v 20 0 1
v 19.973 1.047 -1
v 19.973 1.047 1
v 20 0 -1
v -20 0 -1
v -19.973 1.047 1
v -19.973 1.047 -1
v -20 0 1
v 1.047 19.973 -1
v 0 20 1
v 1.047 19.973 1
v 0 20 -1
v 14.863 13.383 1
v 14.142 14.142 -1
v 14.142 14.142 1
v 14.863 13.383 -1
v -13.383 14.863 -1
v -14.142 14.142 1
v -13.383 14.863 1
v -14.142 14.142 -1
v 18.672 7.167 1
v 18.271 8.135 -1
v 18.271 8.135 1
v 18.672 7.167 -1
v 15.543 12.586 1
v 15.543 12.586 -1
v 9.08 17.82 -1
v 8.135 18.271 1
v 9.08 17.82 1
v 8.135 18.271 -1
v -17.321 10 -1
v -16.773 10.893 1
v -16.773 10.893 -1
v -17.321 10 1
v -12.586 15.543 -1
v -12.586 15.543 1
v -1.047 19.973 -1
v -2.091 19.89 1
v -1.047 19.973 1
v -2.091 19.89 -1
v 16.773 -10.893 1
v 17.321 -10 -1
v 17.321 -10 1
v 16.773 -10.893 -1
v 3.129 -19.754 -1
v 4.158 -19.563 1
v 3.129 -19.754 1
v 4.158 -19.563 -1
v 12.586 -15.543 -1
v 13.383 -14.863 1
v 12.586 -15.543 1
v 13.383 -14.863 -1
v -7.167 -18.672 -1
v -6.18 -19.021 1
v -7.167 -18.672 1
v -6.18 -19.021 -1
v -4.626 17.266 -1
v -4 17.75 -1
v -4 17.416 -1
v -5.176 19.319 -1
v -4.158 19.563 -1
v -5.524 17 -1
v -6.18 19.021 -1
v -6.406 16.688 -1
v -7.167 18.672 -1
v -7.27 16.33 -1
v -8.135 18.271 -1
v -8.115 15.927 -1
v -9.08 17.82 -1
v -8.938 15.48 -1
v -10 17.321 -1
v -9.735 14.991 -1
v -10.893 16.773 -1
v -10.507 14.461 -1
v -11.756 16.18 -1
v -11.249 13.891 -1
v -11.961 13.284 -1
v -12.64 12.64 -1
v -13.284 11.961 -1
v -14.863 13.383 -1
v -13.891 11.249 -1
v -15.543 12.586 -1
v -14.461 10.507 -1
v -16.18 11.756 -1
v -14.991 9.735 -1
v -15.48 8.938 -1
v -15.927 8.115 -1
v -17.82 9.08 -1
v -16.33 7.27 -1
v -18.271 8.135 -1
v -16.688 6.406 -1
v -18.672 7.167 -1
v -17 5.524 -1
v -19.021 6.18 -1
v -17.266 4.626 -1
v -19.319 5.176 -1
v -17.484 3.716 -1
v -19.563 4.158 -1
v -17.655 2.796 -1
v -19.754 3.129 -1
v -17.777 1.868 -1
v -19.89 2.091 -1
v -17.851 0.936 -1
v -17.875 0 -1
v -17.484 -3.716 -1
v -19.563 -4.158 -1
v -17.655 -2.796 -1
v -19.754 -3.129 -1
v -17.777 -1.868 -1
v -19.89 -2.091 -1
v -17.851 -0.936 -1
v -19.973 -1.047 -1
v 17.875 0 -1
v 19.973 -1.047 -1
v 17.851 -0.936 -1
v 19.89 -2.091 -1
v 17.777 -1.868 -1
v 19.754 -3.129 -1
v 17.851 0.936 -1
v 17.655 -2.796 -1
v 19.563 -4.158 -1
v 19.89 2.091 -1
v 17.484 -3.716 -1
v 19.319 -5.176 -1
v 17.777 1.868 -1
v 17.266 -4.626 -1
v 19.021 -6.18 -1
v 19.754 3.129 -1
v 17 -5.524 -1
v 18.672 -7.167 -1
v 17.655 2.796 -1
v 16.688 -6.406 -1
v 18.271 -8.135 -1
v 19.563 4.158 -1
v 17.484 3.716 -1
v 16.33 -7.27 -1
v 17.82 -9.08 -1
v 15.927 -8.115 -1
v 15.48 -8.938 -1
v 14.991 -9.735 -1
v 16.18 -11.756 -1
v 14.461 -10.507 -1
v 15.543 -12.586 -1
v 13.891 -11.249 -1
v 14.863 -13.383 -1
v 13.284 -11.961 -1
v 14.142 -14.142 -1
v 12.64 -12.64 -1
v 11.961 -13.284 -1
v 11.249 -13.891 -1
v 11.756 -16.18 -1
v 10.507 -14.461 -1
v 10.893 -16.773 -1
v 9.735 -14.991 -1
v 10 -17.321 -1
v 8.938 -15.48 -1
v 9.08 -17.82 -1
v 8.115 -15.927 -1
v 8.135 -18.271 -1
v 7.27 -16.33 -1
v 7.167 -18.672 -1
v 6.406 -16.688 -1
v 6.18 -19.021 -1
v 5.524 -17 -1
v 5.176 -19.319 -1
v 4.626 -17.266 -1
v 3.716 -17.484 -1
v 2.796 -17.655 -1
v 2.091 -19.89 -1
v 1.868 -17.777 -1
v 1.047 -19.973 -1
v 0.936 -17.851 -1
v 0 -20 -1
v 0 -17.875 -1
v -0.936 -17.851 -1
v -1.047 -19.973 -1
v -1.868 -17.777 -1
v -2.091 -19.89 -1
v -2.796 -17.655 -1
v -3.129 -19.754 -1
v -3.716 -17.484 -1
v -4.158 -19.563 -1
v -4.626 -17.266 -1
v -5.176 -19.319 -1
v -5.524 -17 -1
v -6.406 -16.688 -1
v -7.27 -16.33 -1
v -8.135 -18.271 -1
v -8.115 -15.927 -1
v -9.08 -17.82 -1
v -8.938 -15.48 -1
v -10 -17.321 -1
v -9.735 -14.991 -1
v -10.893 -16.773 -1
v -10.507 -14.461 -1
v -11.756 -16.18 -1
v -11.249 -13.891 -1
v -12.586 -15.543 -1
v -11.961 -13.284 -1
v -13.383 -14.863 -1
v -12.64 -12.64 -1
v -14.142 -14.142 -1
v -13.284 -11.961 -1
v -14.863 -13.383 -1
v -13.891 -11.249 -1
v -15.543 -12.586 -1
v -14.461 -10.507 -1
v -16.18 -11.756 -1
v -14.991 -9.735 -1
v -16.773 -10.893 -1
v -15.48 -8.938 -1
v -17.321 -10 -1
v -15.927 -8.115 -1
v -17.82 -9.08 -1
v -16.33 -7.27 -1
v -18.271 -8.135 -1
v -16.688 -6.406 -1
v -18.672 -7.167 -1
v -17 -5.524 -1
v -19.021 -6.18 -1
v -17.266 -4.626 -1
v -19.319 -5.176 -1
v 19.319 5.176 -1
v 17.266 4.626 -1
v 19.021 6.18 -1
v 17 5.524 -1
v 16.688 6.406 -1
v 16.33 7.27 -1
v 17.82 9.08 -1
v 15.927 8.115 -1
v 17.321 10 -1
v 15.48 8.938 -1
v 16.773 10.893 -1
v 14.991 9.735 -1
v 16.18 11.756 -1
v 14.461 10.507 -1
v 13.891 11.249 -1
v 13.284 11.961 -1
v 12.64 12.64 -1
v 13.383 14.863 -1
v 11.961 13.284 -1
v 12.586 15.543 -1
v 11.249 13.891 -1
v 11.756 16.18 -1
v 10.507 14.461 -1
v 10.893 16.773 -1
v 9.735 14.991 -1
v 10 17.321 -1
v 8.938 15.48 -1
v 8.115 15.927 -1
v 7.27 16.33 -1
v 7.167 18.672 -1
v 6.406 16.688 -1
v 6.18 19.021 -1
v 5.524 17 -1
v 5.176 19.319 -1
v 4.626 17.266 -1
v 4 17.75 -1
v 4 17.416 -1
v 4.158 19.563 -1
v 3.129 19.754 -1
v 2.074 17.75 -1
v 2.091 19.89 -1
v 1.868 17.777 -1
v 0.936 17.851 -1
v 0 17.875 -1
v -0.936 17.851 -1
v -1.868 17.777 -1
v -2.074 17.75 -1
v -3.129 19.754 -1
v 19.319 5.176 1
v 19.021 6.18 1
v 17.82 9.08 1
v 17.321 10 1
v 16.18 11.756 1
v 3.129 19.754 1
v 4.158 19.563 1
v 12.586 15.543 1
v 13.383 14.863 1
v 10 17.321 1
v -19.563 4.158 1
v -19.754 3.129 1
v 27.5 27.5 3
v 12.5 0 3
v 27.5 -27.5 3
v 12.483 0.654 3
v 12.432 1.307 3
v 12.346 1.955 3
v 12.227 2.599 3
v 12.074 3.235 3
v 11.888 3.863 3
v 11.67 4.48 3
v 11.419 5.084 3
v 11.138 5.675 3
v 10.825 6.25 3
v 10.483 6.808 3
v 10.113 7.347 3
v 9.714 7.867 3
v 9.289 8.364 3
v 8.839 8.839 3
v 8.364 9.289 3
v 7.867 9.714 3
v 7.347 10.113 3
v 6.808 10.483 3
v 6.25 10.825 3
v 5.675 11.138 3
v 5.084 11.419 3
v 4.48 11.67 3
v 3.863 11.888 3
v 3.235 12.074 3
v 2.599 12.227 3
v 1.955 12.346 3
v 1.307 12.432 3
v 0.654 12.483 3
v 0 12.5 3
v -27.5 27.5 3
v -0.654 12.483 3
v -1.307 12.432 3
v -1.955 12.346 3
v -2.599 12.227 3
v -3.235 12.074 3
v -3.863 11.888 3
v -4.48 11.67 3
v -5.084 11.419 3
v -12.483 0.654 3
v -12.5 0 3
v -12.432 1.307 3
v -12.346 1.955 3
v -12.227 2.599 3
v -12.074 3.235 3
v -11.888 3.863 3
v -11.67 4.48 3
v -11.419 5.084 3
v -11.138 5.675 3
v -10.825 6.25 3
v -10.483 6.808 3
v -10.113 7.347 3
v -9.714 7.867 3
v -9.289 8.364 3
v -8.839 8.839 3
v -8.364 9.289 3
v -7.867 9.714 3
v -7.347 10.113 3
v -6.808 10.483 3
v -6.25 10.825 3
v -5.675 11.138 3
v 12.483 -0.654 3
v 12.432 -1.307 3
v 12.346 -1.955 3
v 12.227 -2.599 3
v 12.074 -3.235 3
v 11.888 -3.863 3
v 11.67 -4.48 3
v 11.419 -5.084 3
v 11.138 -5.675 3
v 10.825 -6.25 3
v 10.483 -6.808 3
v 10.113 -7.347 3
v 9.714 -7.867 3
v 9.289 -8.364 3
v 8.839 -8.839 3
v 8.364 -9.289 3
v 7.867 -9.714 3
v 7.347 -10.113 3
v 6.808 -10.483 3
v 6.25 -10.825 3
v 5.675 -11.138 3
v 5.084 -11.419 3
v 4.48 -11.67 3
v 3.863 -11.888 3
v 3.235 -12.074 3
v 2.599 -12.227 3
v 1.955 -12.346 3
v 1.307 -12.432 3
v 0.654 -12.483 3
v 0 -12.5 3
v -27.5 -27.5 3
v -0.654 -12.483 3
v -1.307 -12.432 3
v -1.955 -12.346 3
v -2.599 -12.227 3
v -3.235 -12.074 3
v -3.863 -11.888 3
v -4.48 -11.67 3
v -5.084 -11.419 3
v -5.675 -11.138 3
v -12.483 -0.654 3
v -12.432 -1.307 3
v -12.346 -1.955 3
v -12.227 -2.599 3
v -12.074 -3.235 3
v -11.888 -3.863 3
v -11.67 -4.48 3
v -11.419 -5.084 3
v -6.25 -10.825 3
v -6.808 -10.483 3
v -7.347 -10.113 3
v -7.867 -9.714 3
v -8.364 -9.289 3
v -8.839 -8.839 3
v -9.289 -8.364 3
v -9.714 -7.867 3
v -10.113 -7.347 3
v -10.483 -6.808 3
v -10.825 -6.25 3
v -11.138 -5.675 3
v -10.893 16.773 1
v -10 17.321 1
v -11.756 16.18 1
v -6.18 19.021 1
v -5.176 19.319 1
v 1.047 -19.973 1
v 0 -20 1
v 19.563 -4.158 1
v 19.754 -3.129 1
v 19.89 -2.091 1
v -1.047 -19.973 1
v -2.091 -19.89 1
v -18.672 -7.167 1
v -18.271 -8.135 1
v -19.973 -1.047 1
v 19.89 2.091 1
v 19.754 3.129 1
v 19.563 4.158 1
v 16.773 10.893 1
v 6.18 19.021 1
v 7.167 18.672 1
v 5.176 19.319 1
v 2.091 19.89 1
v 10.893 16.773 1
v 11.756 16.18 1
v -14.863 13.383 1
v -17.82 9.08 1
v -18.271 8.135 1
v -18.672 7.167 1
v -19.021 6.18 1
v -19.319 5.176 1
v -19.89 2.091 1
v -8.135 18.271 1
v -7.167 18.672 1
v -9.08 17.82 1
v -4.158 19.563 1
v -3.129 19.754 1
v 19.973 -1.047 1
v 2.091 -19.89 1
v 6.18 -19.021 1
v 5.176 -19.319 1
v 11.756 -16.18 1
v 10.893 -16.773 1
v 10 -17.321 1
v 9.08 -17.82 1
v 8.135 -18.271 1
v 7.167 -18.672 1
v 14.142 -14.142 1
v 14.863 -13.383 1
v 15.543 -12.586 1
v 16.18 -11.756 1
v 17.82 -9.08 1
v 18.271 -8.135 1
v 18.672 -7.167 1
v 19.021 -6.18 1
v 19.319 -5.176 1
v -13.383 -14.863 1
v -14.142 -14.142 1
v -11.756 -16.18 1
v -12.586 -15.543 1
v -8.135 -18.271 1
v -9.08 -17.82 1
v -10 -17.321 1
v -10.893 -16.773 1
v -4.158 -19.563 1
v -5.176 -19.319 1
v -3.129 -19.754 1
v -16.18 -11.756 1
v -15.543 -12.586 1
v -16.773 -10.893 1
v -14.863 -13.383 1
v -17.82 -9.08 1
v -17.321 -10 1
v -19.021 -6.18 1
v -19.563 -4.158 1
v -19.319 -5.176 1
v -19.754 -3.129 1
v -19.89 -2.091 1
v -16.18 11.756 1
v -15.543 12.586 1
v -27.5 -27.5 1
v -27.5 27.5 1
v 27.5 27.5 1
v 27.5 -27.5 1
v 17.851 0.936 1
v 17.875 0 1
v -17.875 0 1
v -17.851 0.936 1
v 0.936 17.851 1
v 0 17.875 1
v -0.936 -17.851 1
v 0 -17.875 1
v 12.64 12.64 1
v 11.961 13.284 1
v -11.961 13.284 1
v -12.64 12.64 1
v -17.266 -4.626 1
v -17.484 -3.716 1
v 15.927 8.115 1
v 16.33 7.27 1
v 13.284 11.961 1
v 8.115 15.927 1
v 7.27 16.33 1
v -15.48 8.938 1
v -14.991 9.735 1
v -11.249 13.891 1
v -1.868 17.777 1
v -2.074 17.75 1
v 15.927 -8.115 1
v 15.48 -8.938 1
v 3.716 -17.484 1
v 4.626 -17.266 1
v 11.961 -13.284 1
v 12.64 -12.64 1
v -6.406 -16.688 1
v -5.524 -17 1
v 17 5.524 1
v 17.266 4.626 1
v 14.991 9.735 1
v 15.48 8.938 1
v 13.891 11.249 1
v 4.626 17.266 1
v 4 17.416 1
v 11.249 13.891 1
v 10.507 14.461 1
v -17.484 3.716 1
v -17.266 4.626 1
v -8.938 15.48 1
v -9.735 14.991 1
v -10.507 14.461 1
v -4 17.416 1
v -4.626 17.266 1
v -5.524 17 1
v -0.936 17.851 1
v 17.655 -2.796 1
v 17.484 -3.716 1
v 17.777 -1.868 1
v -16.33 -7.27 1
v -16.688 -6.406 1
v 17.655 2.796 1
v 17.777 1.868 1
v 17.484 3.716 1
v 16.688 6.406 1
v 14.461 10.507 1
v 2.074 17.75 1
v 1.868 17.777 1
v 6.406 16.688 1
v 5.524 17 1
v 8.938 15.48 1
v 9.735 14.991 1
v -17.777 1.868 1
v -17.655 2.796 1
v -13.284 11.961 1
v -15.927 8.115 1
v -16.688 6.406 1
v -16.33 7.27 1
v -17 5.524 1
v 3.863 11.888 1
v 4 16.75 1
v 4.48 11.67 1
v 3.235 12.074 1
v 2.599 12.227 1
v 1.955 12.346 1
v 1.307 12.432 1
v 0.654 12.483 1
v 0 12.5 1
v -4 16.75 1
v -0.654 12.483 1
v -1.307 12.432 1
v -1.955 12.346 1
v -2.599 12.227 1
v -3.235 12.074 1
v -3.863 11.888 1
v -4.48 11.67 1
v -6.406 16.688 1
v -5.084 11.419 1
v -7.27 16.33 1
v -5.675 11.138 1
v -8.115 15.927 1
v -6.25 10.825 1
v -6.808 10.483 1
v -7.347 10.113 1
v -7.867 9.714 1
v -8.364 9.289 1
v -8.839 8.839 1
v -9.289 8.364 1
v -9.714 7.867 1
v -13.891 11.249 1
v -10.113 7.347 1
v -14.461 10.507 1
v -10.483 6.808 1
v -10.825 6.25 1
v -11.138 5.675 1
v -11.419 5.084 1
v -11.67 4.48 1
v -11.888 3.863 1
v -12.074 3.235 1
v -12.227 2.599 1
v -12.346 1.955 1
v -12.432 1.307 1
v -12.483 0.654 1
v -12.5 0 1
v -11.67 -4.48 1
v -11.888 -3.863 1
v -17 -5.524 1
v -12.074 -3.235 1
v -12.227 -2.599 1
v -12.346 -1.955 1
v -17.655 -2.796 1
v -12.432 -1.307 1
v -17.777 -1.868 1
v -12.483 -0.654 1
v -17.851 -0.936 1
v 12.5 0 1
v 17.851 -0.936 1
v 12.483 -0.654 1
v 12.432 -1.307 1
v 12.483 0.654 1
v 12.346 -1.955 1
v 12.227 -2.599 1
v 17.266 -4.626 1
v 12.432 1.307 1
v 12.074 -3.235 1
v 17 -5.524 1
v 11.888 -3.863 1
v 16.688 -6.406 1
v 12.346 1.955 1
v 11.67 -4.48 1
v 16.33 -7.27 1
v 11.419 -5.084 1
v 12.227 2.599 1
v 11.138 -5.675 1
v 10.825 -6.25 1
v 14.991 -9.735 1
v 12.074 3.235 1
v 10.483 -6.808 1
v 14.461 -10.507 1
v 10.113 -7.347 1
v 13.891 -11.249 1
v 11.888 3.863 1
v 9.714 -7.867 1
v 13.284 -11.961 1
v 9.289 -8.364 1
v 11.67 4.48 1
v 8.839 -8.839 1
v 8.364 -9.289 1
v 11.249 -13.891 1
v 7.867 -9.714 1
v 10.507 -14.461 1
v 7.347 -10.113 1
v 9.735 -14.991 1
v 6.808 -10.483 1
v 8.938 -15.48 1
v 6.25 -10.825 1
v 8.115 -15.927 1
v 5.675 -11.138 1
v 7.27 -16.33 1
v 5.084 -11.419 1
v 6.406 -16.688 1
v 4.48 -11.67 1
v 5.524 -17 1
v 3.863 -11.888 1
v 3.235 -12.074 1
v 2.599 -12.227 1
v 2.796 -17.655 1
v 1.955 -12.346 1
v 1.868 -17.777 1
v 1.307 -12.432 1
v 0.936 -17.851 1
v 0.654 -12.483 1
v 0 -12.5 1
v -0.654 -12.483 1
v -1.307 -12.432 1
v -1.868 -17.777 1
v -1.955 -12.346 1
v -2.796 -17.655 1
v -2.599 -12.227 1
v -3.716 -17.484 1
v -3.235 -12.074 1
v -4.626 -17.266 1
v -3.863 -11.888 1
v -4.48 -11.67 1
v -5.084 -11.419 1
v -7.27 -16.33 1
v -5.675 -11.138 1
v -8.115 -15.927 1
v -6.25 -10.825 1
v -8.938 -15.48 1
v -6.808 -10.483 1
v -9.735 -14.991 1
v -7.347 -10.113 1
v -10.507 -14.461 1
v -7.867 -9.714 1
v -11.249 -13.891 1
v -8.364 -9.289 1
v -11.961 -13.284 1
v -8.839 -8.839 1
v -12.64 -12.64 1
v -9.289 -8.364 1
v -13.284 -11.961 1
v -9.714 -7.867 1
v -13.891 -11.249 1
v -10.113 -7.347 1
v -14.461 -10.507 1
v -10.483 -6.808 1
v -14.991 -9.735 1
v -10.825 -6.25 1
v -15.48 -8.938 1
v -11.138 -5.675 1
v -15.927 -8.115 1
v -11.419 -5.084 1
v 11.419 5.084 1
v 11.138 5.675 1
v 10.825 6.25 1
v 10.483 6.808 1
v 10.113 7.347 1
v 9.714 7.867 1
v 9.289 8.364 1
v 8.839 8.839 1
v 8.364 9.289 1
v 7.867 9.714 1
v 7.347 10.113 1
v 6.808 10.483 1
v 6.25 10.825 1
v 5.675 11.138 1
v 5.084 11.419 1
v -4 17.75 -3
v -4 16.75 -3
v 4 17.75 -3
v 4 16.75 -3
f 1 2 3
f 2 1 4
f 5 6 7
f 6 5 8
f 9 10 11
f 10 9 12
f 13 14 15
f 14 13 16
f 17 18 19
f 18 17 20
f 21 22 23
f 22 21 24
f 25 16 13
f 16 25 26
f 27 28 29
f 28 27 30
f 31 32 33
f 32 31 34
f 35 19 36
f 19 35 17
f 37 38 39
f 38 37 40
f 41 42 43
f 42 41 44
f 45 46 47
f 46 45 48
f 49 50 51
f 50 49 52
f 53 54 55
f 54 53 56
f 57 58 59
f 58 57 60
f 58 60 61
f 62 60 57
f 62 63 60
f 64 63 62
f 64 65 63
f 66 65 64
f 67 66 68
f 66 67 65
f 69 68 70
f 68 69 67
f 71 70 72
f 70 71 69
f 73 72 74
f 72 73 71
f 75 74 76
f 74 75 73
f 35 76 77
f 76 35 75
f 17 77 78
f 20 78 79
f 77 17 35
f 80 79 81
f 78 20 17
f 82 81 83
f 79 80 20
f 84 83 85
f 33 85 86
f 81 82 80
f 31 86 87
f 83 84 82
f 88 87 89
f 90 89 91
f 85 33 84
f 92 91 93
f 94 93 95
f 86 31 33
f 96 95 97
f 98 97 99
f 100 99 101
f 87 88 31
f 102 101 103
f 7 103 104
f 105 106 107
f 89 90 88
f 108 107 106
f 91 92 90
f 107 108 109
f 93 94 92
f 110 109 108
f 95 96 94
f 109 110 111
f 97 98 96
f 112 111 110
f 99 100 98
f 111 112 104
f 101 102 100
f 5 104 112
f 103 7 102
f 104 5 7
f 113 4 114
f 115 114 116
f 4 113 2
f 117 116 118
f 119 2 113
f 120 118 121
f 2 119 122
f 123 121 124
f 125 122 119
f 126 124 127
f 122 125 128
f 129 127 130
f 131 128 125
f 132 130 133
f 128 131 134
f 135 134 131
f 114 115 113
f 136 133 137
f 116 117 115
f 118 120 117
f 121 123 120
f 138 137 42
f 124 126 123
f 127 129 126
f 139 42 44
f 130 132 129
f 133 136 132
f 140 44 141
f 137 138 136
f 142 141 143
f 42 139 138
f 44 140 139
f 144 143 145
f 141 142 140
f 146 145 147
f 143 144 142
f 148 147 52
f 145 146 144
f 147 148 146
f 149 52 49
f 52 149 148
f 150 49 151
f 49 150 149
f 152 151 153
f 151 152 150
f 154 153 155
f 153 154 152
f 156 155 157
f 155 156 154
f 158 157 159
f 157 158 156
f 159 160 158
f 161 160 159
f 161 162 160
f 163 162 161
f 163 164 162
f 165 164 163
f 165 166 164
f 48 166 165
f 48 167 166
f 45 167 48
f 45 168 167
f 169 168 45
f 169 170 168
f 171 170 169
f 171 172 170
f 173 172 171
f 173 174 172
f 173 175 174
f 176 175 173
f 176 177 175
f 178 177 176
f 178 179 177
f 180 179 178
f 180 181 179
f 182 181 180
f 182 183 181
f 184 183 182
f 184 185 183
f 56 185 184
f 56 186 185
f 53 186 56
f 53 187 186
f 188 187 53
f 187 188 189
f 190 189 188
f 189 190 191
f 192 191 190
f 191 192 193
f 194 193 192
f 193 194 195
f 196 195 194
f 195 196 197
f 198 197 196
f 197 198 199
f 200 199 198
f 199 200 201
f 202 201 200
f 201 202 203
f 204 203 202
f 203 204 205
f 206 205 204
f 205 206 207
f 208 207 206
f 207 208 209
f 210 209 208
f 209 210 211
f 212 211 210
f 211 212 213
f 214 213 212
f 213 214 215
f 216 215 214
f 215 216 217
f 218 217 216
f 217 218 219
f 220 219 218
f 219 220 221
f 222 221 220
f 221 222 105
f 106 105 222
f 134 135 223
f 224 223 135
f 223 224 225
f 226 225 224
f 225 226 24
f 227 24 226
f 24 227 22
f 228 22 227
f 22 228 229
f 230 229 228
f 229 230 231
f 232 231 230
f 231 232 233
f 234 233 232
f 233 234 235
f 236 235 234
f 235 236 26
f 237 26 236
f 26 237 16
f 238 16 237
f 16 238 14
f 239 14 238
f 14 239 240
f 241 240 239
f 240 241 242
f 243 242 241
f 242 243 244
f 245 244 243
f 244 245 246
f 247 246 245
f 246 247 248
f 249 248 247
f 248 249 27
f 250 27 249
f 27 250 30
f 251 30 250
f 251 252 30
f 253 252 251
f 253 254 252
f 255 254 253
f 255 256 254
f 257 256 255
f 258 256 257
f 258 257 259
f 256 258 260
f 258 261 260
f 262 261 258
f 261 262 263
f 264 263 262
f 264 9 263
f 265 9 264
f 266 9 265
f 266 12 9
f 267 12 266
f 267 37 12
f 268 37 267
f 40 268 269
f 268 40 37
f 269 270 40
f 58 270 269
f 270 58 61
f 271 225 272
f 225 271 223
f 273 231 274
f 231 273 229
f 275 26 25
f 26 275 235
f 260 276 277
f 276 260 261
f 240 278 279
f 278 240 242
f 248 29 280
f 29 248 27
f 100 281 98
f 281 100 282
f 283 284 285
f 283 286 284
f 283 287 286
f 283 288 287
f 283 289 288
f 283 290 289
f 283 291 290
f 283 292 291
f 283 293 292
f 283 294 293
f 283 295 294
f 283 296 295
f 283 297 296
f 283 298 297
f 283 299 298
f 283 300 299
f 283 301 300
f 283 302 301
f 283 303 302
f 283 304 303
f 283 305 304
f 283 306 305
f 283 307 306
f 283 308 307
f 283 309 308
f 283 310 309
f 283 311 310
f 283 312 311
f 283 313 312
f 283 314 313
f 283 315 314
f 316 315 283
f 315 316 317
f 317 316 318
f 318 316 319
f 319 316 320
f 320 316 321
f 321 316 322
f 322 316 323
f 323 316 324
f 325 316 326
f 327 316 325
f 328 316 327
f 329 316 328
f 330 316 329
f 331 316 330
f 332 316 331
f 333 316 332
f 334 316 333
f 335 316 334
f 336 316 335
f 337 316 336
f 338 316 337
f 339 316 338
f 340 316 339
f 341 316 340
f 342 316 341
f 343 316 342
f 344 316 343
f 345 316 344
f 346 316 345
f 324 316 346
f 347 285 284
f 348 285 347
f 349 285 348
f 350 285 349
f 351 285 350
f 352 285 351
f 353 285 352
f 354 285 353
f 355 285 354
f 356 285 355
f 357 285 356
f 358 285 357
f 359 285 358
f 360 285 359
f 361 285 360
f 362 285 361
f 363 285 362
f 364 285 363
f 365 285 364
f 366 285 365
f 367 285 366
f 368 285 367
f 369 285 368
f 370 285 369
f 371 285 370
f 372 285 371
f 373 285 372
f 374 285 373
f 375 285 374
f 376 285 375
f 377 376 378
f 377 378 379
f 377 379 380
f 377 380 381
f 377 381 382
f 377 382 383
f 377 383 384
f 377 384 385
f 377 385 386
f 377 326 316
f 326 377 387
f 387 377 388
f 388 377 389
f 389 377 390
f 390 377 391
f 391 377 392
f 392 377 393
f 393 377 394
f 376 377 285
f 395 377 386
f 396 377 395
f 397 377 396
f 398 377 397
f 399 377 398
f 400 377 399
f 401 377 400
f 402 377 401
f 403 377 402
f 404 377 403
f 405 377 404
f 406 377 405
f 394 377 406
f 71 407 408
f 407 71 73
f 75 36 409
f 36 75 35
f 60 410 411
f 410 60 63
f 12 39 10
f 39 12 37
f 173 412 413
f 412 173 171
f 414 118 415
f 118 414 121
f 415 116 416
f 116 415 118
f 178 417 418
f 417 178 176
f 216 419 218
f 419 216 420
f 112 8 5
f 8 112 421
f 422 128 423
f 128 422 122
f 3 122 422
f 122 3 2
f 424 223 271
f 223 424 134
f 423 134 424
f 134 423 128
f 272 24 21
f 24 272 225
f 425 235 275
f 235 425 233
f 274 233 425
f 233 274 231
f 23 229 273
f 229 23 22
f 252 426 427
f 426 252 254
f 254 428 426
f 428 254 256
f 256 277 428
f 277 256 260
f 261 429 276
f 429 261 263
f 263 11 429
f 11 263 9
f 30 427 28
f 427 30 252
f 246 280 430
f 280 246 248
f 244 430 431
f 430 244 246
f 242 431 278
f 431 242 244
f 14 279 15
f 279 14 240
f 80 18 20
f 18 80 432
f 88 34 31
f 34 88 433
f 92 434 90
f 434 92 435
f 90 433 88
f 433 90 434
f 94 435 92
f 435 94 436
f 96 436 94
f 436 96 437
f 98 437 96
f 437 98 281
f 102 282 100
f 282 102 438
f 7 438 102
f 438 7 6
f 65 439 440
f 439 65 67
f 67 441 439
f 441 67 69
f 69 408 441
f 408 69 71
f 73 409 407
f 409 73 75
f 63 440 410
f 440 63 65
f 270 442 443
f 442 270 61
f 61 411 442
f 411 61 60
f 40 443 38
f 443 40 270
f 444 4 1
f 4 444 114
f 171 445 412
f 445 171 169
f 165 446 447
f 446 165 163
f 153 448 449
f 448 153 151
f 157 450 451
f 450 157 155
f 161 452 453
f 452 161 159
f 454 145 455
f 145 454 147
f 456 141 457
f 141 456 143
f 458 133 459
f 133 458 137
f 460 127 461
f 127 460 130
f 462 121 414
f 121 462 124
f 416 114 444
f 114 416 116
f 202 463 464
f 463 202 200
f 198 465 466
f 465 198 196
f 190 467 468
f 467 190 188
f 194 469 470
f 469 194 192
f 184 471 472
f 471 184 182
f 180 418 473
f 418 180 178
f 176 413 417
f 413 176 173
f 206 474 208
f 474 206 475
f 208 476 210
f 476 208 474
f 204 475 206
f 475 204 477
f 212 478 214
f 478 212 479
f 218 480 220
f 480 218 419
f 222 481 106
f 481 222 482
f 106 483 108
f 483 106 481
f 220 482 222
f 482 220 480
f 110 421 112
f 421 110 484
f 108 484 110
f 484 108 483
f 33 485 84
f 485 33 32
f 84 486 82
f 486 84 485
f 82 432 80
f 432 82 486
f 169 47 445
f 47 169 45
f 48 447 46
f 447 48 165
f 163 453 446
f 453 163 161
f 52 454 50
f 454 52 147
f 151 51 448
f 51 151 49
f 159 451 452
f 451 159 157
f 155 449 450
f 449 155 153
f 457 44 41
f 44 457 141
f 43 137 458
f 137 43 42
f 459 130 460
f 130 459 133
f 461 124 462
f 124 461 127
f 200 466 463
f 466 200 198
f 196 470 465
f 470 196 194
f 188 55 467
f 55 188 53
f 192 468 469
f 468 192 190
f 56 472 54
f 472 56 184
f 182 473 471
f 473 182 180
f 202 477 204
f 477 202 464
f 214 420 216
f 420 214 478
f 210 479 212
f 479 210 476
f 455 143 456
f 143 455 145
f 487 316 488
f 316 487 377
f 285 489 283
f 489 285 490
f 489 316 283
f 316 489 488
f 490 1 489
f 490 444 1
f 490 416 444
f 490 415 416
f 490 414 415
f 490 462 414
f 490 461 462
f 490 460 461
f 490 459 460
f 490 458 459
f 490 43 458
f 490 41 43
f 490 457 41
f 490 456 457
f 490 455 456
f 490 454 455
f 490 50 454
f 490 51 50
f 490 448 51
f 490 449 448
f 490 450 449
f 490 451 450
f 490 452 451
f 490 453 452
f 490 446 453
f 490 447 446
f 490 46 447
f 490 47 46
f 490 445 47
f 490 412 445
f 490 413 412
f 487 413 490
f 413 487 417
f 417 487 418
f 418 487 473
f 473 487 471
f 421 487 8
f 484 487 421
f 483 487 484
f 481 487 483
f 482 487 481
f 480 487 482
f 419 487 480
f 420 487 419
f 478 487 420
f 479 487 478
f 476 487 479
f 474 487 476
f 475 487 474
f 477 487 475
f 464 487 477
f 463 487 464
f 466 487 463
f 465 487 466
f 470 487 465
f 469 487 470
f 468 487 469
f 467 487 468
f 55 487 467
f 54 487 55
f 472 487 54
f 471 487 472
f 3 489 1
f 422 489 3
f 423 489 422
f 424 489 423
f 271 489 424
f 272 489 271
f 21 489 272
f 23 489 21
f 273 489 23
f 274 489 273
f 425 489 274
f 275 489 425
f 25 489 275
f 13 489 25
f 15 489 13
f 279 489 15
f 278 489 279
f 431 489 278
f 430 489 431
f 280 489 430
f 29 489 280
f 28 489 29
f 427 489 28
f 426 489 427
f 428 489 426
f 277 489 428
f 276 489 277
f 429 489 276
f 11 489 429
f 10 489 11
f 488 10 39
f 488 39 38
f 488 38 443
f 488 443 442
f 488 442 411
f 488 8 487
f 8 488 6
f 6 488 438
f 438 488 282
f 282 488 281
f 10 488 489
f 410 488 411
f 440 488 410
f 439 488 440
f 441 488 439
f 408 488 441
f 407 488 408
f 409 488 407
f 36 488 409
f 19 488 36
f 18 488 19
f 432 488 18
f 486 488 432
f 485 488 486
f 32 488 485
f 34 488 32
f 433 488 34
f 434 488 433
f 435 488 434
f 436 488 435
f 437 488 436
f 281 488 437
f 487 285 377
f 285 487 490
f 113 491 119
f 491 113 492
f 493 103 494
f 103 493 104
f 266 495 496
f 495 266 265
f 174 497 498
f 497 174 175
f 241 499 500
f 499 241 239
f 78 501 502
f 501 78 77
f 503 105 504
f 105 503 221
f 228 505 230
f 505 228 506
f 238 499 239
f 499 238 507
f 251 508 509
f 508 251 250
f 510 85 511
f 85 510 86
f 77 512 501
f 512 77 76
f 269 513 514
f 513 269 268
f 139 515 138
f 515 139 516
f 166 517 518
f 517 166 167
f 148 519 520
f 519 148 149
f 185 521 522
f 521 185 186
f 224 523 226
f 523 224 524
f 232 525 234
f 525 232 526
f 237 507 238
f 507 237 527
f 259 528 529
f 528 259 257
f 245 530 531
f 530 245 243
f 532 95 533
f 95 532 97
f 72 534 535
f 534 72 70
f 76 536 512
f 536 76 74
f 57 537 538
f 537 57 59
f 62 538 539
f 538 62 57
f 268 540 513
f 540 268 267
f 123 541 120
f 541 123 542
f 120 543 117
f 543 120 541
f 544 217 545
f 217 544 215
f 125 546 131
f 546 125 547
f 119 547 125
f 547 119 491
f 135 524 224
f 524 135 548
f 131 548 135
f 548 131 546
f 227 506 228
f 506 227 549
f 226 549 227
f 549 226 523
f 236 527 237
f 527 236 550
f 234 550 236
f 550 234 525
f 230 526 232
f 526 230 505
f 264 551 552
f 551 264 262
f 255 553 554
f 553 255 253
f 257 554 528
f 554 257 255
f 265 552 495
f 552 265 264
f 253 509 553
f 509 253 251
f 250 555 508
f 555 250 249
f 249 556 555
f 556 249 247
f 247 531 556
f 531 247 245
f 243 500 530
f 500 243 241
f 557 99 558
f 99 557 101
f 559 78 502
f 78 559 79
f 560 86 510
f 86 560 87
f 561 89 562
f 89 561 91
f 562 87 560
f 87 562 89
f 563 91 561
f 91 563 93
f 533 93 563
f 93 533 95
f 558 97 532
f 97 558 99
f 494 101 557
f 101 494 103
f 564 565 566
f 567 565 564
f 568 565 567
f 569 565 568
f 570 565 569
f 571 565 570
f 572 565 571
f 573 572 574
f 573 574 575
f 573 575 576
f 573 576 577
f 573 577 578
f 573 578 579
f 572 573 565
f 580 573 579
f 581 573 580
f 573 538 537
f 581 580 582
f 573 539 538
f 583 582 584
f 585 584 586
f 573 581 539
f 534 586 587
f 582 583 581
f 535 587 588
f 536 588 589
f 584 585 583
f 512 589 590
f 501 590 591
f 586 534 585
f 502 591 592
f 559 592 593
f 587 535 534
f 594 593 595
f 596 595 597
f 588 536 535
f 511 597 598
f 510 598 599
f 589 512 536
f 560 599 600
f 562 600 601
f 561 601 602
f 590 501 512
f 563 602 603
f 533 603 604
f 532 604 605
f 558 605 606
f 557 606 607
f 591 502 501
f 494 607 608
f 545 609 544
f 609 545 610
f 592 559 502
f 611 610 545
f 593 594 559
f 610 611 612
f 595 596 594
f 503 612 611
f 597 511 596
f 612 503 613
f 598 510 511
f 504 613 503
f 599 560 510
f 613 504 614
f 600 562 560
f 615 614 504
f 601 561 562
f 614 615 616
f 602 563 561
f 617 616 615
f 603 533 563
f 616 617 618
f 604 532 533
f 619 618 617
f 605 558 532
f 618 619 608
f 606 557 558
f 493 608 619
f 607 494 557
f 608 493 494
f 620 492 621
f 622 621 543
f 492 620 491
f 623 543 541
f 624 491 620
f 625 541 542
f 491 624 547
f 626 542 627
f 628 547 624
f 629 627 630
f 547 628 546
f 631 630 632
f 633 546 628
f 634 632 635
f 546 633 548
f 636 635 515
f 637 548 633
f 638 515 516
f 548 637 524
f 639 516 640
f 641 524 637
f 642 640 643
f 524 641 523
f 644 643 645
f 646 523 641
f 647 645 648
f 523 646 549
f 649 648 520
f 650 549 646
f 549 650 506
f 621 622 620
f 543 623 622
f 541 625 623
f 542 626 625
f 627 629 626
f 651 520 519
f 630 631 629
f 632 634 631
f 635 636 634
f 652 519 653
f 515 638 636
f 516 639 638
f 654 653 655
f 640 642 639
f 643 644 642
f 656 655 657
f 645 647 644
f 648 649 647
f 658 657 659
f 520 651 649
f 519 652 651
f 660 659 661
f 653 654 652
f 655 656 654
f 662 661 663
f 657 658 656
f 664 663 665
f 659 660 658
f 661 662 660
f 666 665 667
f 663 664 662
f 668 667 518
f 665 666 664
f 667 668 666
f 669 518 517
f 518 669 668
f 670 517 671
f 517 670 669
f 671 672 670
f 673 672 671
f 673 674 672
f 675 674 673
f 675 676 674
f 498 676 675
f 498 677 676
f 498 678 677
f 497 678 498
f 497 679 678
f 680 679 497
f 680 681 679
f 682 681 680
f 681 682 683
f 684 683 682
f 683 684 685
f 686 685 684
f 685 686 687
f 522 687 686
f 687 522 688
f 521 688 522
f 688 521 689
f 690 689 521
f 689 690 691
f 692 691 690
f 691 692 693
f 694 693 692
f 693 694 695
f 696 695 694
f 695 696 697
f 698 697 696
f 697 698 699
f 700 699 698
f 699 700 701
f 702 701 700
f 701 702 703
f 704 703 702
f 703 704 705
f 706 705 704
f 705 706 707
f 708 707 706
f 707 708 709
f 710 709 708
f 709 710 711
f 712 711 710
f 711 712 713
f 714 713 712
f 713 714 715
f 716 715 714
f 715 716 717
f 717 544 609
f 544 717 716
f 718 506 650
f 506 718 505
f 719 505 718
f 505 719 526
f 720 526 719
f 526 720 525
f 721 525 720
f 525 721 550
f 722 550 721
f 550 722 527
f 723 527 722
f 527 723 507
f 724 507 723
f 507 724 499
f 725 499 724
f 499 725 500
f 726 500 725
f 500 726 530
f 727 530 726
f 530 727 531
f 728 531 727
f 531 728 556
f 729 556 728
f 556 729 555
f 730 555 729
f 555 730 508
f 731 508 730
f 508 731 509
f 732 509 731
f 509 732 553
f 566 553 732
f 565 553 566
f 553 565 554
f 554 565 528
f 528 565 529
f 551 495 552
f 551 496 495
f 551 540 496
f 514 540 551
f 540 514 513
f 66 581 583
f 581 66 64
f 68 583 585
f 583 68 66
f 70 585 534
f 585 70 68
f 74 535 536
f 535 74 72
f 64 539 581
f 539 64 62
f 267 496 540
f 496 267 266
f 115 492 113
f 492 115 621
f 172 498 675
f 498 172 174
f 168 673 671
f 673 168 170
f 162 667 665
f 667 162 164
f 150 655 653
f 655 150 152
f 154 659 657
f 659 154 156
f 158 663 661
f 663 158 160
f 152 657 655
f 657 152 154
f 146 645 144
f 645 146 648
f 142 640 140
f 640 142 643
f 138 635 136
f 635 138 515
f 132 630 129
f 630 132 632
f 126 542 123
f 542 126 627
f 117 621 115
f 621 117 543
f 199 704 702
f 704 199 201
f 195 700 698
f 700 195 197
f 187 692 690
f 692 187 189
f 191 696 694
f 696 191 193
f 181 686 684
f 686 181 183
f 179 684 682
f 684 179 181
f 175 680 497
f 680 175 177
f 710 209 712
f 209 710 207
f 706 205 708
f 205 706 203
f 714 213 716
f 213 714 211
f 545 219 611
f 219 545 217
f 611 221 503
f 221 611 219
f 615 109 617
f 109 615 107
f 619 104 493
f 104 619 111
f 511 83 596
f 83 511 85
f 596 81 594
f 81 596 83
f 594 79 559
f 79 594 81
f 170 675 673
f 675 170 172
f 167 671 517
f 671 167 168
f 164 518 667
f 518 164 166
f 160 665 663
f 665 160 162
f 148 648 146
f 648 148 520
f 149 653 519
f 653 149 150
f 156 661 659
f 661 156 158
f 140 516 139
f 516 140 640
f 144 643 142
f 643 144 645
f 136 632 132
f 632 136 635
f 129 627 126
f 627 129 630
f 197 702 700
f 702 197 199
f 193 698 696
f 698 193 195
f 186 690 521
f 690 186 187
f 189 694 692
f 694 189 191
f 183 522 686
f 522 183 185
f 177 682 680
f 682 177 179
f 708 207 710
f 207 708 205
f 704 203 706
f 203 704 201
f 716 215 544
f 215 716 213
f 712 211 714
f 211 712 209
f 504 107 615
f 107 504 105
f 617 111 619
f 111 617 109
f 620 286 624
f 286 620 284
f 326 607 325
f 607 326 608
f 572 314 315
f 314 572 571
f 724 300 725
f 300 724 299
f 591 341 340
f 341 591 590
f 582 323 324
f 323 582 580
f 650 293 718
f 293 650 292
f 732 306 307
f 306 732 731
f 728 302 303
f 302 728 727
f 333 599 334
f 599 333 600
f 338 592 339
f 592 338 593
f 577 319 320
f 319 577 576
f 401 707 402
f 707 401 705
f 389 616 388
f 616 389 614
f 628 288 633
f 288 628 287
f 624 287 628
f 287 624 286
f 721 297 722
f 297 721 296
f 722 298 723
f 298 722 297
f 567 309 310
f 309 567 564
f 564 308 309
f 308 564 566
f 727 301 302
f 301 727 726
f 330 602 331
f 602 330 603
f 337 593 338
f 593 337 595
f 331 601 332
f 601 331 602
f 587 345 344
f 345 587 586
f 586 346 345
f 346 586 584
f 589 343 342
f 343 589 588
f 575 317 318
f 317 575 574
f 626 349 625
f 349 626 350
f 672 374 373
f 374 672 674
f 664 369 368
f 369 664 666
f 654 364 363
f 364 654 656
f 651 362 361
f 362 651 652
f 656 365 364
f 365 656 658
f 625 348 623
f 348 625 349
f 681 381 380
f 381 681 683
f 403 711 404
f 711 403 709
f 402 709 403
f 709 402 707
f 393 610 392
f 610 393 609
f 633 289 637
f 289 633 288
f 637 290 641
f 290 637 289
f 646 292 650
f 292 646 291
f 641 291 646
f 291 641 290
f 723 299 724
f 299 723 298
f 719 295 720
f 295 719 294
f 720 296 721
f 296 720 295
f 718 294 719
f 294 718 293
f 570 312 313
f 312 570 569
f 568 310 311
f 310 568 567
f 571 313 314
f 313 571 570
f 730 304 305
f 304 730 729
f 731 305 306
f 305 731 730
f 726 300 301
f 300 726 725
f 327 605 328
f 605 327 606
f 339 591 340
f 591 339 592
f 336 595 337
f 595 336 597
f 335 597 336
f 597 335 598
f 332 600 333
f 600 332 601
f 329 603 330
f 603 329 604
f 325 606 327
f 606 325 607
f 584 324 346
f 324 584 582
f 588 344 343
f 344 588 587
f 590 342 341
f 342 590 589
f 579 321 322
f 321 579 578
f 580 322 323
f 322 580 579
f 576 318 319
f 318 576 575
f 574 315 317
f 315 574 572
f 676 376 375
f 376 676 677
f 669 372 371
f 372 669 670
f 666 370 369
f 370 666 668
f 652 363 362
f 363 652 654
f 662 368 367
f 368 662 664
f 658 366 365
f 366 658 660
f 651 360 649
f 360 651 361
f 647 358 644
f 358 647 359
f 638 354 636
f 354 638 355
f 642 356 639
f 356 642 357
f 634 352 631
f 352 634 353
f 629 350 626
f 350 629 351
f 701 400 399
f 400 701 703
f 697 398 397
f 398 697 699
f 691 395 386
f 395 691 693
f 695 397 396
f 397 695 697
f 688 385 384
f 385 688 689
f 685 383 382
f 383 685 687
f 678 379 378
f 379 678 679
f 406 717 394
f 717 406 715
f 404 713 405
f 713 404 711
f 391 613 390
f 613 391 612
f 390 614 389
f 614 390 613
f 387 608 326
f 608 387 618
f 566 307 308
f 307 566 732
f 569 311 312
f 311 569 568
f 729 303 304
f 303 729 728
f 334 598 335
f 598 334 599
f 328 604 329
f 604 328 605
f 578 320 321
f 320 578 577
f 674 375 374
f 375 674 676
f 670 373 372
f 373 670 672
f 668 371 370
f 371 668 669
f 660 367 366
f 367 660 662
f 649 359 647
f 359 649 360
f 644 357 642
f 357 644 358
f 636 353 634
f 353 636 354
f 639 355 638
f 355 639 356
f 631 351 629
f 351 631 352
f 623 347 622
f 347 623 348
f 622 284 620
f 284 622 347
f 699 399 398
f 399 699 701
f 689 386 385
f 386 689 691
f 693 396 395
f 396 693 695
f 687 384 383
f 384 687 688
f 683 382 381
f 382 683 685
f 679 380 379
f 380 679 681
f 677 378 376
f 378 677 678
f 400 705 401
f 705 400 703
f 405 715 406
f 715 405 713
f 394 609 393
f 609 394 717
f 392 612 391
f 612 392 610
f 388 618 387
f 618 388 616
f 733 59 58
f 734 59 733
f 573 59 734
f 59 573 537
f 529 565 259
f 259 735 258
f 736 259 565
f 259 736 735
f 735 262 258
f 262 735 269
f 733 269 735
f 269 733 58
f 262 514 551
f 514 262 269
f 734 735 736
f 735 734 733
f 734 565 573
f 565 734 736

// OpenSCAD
include <BOSL/constants.scad>
use <BOSL/shapes.scad>
use <BOSL/transforms.scad>
use <BOSL/masks.scad>

//Slider_Disc
fileVersion = "1A";
  
$fn=120; //circle smoothness

union() {  
  difference(){
    union() {
     color("lime") down(1) cylinder(h=4, d=40); //disc object
    color("pink") forward(0) up(2) cuboid([55, 55, 2]); //bench mount

    }
     color("aqua") down(2) cylinder(h=3, d=35.75); //trackpoint disc
     color("orange") cylinder(h=10, d=25); //finger cutout
  }//difference

  color("blue") down(1) back(17.25) cuboid([8, 1, 4]); // trackpoint alignment 

}
